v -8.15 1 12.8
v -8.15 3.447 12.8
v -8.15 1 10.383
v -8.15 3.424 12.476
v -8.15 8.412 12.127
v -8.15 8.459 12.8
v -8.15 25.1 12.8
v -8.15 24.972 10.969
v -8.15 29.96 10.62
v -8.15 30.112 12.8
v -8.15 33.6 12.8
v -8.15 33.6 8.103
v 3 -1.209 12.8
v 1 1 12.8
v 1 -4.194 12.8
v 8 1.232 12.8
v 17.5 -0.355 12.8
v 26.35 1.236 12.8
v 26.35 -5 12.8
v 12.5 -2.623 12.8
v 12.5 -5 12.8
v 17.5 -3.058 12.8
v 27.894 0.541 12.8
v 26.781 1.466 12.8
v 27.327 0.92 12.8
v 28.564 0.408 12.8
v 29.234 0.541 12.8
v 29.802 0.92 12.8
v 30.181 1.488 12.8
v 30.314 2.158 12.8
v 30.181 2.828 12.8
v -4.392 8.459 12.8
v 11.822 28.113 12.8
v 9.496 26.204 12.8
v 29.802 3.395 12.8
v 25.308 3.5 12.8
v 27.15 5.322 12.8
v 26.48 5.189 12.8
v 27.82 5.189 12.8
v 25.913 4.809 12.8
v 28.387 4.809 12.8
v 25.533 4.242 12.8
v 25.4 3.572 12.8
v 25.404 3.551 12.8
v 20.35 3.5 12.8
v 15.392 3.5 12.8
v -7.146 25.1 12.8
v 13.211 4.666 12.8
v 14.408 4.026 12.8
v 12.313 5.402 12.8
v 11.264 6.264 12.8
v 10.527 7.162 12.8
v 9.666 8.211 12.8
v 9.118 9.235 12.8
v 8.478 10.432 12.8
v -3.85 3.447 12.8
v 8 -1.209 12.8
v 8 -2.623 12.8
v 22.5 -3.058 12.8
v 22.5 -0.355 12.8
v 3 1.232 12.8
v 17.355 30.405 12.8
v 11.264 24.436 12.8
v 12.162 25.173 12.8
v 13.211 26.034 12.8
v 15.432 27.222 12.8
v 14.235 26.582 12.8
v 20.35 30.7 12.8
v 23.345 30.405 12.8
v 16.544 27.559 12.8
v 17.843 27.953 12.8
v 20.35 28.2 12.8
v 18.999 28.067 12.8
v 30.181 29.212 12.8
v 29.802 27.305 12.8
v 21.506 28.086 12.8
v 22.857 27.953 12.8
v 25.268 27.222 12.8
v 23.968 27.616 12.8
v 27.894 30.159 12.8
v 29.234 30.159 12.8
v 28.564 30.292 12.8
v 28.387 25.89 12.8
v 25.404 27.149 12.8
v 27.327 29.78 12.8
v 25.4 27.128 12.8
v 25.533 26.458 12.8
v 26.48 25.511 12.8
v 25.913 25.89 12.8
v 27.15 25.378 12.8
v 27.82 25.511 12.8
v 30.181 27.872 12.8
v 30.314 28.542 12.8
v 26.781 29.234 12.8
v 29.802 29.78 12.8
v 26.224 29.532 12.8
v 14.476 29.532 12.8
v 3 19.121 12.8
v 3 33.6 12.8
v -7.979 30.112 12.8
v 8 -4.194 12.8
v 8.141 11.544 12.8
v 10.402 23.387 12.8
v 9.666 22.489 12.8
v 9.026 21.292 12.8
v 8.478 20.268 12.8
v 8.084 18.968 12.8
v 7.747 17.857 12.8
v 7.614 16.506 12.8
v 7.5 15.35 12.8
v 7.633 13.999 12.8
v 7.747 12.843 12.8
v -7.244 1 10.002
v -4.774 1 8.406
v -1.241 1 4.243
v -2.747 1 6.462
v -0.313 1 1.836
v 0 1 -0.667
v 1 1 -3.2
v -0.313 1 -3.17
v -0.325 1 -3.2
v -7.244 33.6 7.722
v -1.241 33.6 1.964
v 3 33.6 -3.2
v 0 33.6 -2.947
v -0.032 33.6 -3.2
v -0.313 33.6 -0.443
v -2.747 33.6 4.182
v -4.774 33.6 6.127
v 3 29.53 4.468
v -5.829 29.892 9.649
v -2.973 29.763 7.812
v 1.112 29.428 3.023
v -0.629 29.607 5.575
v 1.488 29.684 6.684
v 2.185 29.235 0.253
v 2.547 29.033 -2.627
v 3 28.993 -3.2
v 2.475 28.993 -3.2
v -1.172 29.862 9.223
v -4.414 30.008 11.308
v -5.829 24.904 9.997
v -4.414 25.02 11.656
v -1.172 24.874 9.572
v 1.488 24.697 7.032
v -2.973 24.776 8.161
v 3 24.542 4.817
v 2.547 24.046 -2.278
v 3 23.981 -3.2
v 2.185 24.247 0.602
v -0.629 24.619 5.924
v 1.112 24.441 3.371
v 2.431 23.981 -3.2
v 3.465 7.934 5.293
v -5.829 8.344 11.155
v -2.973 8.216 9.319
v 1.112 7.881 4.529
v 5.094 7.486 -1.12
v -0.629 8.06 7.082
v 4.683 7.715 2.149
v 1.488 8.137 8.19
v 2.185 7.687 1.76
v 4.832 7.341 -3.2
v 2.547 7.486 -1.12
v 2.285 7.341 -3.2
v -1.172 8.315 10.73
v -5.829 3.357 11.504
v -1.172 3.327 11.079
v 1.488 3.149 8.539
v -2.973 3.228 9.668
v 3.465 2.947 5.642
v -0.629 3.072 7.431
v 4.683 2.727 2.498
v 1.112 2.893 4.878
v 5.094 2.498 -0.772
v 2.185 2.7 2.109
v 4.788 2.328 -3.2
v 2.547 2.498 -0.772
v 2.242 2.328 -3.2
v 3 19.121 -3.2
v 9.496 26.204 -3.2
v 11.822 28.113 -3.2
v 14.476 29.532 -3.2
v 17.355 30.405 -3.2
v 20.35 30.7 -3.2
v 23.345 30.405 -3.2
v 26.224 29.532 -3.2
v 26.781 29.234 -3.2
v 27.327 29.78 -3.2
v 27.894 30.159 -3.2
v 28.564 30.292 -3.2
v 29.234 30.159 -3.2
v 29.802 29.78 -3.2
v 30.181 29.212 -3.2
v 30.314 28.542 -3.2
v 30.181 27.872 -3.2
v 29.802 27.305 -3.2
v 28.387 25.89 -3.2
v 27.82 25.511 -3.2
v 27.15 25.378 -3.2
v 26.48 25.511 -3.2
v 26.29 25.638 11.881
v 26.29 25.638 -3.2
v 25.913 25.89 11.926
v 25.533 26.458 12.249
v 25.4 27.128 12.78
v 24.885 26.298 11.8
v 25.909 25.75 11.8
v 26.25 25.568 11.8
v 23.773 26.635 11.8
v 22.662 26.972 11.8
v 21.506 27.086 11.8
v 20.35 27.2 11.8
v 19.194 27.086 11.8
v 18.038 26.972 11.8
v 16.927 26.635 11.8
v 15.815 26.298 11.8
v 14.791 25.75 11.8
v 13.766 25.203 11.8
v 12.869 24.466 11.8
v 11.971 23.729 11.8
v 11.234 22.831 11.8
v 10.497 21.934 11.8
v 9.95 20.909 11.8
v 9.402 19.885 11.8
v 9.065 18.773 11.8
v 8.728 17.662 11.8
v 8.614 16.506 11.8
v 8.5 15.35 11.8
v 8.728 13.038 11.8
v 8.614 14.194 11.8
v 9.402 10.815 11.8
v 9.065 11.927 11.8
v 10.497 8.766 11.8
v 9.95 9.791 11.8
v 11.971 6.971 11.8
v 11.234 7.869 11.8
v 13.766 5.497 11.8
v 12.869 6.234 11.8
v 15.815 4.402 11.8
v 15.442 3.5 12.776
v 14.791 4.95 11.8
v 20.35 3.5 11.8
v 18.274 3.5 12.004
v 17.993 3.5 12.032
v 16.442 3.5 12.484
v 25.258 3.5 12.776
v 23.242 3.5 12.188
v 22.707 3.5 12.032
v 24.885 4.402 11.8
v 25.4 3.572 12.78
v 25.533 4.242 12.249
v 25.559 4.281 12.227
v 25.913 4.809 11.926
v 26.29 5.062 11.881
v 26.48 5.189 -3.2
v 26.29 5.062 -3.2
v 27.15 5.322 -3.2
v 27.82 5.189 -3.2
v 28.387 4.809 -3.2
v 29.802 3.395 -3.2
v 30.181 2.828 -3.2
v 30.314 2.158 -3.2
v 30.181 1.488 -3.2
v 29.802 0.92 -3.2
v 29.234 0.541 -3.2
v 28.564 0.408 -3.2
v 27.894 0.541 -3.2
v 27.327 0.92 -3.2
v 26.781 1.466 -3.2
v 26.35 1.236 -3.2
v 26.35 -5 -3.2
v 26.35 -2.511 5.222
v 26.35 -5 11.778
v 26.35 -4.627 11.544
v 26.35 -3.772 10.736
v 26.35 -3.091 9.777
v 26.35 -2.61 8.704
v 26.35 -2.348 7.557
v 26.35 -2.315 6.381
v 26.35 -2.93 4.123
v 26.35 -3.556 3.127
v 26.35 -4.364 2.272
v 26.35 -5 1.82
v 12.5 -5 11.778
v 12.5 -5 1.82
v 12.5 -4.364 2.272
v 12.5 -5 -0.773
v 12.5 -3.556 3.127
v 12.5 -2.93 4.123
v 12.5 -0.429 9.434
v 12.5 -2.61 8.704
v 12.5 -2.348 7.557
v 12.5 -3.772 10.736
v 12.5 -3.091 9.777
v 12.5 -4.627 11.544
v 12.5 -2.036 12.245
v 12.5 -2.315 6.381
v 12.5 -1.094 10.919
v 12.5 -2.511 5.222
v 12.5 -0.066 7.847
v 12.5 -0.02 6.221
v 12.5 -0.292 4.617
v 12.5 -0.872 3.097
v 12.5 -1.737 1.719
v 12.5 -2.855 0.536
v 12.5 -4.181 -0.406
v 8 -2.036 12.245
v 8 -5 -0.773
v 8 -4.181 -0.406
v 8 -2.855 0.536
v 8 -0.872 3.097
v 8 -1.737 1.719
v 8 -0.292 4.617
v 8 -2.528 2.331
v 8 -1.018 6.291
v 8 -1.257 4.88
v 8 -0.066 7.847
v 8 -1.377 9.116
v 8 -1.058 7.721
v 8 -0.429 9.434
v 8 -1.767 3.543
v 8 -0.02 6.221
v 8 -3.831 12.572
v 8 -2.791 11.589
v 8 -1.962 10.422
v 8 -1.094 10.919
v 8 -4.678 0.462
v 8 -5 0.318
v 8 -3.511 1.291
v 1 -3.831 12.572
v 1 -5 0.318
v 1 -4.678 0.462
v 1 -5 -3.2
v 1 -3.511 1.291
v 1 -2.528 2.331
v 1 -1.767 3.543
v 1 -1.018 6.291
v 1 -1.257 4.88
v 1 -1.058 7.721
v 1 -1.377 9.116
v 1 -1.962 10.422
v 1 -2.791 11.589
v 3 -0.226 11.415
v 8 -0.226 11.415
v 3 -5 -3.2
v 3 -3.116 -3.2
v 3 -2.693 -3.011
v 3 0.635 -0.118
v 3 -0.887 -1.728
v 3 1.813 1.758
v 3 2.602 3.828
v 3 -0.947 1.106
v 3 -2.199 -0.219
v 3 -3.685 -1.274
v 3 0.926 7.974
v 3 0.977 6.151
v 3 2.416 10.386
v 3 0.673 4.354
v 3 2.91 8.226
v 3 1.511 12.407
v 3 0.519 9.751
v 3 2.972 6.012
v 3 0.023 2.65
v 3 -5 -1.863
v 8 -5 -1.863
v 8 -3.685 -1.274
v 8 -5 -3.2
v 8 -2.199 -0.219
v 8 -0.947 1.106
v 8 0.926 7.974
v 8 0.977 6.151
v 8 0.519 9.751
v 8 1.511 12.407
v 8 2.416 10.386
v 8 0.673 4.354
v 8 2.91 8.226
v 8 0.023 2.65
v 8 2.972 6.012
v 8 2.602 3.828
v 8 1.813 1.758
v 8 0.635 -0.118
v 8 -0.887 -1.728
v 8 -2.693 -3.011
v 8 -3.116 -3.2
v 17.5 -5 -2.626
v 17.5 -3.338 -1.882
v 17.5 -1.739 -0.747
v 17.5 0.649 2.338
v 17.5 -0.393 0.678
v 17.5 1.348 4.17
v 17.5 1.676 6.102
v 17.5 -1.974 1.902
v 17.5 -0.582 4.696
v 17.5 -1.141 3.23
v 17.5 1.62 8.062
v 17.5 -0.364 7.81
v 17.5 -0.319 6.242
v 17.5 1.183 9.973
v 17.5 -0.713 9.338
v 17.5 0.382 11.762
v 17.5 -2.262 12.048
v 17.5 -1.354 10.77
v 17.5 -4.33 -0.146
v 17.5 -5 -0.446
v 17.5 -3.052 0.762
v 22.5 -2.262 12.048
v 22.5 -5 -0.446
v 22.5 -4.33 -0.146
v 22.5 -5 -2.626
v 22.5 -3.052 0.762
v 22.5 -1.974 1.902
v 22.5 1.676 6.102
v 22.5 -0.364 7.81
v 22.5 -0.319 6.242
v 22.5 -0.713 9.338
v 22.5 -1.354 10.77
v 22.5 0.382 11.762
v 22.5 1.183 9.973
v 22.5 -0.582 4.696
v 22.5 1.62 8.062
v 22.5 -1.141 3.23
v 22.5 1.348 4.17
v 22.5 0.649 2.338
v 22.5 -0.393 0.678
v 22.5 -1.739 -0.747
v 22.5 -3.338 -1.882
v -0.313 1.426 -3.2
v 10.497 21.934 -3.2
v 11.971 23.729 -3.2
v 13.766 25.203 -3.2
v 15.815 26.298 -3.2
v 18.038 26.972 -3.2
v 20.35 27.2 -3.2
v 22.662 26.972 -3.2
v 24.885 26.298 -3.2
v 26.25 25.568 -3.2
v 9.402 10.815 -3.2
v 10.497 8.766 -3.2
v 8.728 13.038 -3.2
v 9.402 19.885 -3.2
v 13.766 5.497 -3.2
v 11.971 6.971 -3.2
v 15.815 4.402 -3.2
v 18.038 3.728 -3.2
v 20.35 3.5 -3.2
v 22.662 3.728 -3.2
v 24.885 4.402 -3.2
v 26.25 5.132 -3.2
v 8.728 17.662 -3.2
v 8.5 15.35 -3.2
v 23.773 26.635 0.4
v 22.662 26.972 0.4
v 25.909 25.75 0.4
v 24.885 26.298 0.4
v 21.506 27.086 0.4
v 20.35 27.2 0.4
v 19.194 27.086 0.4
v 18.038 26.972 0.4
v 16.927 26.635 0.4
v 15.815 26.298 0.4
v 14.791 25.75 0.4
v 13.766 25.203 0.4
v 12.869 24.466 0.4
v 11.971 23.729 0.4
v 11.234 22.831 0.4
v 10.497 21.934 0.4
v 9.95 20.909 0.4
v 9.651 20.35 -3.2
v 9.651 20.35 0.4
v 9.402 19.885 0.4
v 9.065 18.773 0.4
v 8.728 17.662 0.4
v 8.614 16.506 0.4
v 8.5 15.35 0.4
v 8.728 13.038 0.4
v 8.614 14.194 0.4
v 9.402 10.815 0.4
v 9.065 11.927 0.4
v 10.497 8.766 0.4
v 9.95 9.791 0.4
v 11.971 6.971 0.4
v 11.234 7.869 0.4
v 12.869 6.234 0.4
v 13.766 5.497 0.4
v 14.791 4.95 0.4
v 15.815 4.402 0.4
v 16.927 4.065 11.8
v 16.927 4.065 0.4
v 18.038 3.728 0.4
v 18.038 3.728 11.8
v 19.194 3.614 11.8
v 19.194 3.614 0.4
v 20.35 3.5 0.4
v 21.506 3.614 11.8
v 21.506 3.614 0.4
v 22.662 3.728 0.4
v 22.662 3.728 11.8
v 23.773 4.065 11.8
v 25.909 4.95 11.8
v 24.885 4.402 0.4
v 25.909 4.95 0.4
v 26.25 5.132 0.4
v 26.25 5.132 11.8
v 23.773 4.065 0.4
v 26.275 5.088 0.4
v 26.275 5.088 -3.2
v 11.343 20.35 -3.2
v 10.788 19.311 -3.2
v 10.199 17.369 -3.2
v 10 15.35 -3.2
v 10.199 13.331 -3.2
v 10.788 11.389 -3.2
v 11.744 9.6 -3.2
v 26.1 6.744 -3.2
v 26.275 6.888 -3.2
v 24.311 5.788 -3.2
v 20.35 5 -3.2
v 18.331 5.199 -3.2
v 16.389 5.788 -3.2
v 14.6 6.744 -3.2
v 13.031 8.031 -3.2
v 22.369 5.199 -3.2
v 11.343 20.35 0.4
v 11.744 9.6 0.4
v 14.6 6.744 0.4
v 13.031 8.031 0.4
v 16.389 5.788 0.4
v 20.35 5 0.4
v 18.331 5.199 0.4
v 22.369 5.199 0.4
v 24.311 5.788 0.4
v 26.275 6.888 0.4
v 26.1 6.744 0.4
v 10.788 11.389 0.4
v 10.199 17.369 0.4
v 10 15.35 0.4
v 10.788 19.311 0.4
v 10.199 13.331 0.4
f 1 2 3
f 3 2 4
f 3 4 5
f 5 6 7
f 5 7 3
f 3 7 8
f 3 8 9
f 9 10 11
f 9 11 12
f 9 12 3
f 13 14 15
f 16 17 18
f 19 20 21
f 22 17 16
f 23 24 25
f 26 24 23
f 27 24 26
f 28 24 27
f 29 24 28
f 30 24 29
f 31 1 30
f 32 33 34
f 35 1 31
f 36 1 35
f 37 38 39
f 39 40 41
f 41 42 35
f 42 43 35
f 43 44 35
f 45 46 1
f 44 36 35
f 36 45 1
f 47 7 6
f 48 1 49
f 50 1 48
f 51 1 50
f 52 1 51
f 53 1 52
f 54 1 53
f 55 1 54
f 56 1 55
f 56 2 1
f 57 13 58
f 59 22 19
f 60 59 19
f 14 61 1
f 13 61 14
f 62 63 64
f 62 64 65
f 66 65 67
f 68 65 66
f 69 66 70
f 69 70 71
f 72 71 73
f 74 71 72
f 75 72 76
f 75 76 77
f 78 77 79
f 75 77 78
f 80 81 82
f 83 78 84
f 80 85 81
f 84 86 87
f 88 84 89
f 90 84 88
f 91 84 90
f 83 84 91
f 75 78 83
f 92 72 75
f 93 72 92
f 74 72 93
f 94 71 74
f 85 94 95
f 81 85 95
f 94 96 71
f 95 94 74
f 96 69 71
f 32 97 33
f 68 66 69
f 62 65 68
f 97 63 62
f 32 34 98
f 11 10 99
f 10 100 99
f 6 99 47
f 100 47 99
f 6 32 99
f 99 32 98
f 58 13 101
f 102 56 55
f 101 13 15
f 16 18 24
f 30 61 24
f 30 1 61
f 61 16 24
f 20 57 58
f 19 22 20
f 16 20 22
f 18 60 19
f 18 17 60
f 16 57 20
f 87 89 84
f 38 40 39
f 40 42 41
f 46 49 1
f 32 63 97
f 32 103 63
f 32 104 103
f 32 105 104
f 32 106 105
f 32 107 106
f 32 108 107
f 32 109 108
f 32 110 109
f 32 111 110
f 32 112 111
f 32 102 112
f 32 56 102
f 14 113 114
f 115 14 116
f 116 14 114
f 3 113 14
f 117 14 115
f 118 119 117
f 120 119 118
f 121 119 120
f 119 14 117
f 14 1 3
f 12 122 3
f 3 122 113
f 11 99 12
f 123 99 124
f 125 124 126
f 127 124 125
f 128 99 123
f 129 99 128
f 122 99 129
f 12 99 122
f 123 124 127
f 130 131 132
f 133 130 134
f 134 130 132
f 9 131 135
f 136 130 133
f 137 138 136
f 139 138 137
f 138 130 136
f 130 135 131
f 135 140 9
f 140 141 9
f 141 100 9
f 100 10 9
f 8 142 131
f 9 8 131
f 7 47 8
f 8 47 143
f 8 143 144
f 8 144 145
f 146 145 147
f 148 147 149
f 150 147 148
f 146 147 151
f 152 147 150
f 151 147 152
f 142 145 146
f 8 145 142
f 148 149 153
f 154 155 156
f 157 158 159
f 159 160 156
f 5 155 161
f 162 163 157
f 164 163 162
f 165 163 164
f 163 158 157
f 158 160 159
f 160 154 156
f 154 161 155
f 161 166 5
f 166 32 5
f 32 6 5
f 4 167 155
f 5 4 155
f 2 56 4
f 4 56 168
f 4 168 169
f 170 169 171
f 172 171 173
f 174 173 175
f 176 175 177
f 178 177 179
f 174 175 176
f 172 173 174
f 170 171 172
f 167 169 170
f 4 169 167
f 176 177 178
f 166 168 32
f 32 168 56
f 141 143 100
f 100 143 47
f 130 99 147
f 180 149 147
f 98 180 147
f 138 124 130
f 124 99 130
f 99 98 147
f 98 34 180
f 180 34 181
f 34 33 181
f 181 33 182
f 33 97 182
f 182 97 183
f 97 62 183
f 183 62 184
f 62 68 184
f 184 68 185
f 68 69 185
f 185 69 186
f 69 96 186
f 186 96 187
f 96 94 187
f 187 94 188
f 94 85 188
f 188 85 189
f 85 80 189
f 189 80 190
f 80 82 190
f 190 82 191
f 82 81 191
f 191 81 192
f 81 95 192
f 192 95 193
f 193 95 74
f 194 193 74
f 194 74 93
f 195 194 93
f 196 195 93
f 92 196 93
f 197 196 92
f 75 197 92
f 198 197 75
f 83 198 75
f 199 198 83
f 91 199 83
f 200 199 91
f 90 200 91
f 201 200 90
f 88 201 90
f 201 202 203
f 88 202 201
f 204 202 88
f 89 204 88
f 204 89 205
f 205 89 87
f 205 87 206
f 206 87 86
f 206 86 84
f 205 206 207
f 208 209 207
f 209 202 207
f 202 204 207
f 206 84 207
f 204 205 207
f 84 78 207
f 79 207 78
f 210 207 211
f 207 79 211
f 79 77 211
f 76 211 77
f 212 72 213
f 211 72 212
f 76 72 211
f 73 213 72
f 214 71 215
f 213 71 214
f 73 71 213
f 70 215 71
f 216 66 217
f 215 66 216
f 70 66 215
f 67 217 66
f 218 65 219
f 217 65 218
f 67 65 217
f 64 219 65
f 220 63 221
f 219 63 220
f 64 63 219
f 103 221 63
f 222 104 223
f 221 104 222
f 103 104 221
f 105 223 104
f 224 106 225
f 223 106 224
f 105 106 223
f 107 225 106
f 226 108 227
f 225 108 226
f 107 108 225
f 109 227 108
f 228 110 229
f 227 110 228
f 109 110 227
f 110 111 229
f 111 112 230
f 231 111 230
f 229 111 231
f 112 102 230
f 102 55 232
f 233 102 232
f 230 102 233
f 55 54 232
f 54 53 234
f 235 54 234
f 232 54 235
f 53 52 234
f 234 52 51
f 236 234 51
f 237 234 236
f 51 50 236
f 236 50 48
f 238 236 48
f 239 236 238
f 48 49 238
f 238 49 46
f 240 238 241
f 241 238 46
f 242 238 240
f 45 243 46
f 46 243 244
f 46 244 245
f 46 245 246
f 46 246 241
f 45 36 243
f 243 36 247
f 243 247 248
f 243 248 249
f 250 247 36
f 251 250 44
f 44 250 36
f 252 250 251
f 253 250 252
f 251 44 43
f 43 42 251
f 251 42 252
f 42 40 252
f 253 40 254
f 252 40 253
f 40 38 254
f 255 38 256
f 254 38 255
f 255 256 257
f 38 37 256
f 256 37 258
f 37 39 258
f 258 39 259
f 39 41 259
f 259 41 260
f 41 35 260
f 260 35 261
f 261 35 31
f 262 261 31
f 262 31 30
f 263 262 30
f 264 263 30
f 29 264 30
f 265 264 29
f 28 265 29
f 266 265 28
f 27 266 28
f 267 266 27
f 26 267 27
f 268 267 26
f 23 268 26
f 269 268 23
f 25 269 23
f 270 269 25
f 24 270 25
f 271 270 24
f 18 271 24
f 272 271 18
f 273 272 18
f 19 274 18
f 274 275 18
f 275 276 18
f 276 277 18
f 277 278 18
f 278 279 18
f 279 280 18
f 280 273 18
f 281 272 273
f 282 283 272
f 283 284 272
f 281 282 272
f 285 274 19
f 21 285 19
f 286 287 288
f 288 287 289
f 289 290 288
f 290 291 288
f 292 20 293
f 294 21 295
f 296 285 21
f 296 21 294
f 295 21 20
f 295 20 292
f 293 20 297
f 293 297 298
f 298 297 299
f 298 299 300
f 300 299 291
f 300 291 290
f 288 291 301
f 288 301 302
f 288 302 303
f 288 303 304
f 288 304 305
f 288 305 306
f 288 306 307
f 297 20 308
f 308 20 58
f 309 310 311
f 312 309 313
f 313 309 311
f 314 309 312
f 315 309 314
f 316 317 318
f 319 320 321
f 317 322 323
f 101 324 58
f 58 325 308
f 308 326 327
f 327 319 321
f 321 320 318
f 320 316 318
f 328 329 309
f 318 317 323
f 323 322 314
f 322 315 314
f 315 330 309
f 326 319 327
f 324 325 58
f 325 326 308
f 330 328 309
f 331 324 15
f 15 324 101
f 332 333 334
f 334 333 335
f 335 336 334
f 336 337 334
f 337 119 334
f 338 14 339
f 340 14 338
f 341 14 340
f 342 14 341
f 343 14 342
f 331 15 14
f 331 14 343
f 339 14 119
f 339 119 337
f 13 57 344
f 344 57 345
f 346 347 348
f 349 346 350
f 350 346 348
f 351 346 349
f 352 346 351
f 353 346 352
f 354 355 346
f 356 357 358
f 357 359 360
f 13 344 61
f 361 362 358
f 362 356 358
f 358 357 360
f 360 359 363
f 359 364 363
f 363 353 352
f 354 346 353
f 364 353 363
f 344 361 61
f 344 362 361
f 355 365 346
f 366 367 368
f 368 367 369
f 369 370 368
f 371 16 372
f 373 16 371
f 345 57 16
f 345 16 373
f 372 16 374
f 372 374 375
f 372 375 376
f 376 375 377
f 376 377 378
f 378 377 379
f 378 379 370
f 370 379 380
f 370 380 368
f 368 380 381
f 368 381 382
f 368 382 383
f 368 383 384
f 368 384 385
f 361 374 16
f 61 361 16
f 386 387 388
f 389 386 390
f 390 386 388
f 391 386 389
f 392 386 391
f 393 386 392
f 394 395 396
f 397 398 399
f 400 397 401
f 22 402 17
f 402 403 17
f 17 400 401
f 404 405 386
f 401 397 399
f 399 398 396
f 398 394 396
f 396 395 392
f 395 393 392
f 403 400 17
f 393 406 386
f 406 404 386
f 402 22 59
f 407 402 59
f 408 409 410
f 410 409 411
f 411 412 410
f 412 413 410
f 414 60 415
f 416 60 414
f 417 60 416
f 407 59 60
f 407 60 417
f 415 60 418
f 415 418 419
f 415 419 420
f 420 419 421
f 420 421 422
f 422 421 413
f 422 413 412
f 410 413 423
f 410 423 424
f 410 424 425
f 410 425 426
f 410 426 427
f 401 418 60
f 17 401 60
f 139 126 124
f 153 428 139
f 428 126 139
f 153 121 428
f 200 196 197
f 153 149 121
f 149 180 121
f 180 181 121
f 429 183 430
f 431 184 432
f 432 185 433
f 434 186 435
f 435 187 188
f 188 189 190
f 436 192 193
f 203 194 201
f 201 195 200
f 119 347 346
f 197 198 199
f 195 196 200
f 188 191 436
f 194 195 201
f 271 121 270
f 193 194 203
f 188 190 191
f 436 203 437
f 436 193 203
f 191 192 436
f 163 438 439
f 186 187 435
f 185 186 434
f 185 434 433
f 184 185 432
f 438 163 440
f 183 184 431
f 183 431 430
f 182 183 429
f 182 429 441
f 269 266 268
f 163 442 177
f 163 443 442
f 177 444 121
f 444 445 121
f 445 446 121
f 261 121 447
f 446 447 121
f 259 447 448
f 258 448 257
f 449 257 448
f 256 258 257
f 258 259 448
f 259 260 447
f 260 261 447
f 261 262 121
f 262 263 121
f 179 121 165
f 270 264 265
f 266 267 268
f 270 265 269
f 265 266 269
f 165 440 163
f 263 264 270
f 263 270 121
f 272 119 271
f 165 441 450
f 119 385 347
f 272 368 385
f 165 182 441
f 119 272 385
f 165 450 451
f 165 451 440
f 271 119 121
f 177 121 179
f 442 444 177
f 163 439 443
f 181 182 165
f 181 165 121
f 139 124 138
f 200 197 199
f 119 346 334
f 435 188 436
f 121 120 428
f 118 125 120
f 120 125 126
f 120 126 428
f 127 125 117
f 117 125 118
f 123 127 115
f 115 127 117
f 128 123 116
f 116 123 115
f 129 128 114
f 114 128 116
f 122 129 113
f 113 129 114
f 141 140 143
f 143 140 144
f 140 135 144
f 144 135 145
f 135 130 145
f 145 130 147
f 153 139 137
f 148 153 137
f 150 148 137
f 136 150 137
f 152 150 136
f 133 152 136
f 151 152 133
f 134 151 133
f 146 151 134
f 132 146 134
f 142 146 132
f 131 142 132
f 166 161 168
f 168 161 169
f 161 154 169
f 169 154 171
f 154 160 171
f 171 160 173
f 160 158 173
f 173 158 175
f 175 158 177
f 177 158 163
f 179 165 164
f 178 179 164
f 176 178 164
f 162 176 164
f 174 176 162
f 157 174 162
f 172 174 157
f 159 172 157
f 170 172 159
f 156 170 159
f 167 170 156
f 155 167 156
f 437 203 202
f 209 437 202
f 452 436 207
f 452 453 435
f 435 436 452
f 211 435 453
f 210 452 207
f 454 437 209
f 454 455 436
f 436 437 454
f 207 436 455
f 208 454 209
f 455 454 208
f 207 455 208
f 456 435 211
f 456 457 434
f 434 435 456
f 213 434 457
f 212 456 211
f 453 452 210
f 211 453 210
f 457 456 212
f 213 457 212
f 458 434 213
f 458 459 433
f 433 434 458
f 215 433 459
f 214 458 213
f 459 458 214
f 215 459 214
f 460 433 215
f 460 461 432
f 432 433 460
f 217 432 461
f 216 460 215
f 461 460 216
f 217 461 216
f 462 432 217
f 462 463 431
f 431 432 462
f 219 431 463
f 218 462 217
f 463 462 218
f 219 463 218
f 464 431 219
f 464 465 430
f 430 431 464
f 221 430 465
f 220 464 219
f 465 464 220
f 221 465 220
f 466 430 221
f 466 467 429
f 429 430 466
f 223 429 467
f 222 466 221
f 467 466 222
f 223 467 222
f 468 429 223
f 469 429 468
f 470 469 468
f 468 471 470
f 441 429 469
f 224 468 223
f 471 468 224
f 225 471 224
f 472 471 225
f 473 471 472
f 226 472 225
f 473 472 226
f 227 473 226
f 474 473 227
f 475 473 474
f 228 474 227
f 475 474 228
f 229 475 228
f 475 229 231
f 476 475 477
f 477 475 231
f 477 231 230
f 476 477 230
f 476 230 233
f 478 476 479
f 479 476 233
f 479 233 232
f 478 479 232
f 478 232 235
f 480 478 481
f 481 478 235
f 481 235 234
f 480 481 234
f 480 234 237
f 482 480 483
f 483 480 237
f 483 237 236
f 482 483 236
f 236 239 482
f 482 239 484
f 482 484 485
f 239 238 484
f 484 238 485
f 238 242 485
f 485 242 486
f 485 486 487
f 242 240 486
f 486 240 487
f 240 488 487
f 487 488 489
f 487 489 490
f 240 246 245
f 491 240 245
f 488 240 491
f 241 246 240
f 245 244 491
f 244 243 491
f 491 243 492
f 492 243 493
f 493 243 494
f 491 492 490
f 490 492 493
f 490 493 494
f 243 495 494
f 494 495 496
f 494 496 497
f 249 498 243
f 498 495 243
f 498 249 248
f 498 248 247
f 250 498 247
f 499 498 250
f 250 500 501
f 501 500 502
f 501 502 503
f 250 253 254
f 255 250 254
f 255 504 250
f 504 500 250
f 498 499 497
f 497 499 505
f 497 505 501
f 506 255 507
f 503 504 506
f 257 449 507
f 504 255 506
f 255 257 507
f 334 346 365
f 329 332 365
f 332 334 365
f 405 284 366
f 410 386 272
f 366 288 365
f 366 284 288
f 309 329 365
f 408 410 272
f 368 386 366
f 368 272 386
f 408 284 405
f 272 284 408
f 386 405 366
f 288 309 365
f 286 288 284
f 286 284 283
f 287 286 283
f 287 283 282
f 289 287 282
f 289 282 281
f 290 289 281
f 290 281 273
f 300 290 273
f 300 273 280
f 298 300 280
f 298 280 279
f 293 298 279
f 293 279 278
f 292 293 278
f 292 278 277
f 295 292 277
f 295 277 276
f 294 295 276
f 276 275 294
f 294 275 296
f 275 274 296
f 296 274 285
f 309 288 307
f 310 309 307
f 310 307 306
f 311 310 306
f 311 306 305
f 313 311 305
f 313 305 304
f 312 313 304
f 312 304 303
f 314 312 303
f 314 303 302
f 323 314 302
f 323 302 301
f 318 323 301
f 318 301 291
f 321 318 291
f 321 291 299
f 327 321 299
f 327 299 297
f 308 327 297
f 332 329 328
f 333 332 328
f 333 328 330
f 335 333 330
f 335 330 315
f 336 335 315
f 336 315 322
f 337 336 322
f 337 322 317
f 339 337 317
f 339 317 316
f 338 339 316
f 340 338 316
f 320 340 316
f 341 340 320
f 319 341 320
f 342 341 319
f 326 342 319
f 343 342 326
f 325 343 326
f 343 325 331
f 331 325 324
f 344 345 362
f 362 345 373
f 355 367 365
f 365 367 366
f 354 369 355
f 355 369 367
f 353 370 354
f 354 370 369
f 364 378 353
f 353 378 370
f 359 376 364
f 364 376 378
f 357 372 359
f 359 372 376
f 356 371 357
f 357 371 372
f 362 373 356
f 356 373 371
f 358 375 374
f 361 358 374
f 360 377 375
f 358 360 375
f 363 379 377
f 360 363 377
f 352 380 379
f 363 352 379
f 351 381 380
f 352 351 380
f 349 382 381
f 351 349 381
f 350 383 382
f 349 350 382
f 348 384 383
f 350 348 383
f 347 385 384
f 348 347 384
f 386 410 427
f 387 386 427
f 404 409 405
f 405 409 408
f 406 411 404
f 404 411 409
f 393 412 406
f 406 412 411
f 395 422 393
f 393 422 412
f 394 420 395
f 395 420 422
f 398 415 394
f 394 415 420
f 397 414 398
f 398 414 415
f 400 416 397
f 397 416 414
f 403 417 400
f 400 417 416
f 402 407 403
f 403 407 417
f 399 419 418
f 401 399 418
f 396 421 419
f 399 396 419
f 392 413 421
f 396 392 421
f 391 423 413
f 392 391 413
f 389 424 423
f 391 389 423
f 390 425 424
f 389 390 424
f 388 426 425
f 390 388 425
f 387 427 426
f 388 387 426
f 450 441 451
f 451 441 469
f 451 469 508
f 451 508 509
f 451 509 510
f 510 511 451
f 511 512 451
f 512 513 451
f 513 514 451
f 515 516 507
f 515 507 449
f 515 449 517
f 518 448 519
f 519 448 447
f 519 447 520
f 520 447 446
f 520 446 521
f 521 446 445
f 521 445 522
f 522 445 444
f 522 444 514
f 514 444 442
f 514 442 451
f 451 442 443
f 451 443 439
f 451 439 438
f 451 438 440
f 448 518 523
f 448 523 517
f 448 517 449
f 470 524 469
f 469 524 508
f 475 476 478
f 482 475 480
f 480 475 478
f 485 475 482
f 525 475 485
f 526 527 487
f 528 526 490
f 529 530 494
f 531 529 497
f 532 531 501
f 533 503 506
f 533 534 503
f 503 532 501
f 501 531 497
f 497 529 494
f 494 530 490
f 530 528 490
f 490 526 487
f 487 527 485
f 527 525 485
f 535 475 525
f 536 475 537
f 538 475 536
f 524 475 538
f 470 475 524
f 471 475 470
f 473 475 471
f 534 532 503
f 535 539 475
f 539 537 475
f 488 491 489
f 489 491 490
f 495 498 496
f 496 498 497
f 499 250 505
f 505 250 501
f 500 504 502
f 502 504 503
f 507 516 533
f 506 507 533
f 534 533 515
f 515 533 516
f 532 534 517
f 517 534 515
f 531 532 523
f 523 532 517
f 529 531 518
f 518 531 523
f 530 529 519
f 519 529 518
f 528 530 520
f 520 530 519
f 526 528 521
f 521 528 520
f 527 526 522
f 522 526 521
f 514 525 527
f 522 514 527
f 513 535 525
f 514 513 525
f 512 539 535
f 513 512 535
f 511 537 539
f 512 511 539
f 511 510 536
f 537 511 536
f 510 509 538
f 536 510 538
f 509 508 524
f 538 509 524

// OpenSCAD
// file: ../standard_optomechanics/cylinder_clamp.scad
use <../utilities.scad>;
d=0.05;

//for 1 inch/25mm post clamp, an inner radius of 12.8 is good.
	
module cylinder_clamp(
	inner_r=12.8, //radius of the cylinder being clamped (ish!)
	clamp_h=11, //thicknedess of the clamp along the cylinder axis
	clamp_t=4, //thickness of the clamp radially
	flat_t=8, //how thick the bottom of the clamp is (often need to allow for the mounting bolt head here)
	flat_width=15, //width of the flat base
	mounting_bolt=4, //nominal size of mounting bolt (default is 4 for M4, 0 to disable)
	nut_trap=false,
	bevel_top=0.5, //size of 45 degree bevel on top surface
	bevel_bottom=0.8 //size of 45 degree bevel on bottom of hole
	){
	assign(
		post_r = inner_r, //poor initial choice of name!
		bolt_flat_w=10, //width of the region where the bolt is
		gap_w=3 //size of the gap that is squeezed by the bolt
	)
	difference(){
		hull(){
			cylinder(h=clamp_h,r=post_r+clamp_t,center=true,$fn=48);
			translate([0,-post_r-flat_t/2,0]) cube([flat_width,flat_t,clamp_h],center=true);
			translate([0,post_r+bolt_flat_w/2,0]) cube([12,bolt_flat_w,clamp_h],center=true);
		}
	
		cylinder(h=9999,r=post_r,center=true,$fn=48); //cylinder being clamped
		//bevels, top and bottom
		translate([0,0,-clamp_h/2]) cylinder(r1=post_r+3*bevel_bottom,r2=post_r-bevel_bottom,h=4*bevel_bottom,center=true);
		translate([0,0,clamp_h/2]) cylinder(r2=post_r+3*bevel_top,r1=post_r-bevel_top,h=4*bevel_top,center=true);
		//gap (squeezed by bolt)
		translate([0,999,0]) cube([gap_w,999*2,999],center=true); //gap
	
		//clamping bolt
		translate([gap_w/2+2,post_r+bolt_flat_w/2,0]) rotate([0,0,-90]) nut_y(4,h=999,shaft=true);
		translate([-gap_w/2-2,post_r+bolt_flat_w/2,0]) rotate([0,0,90]) cylinder_with_45deg_top(r=4,h=999,$fn=16); //counterbore for nut head
	
		if(mounting_bolt > 0){
			//mounting bolt
			translate([0,-post_r-4.5,0]) rotate([-90,0,0]){
				intersection(){
					rotate([90,0,0])
						if(nut_trap){
							nut_y(mounting_bolt,fudge=1.15,shaft=true,h=999);
						}else{
							screw_y(mounting_bolt,fudge=1.07,shaft=true,h=999);
						}
					cube([inner_r*2,inner_r*2,clamp_h*2],center=true);
				}
			}
		}
		//in the case of thick clamps with thin flats, this keeps the bottom flat
		translate([0,-inner_r-flat_t-999,0]) cube([9999,999*2,9999],center=true);
	}
}

module cylinder_clamp_v(
	inner_r=12.8, //radius of the cylinder being clamped (ish!)
	clamp_h=10, //width of the clamp along the cylinder (y) axis
	clamp_t=4, //thickness of the clamp radially
	flat_t=8, //how thick the bottom of the clamp is (often need to allow for the mounting bolt head here)
	flat_width=15, //width of the flat base
	mounting_bolt=4, //nominal size of mounting bolt (default is 4 for M4, 0 to disable)
	bevel=0.5 //put a 45 degree bevel on the edges of the hole
	){
	assign(
		post_r = inner_r, //poor initial choice of name!
		bolt_flat_w=11, //width of the region where the bolt is
		gap_w=2*inner_r*sin(45/2),//sin(acos(1-(9/2-4/2*1.22)/inner_r))*inner_r //size of the gap that is squeezed by the bolt
		bolt_z = inner_r+4/2*1.22+d //position of bolt (so bolt just clears the cylinder we're clamping
	)assign( //the second assign statement allows us to use gap_w
		bolt_span=gap_w+4+d//max(2*inner_r*sin(acos(1-(9/2-4/2*1.22)/inner_r)), gap_w+4)
	)
	difference(){
		hull(){
			rotate([90,0,0]) cylinder(h=clamp_h,r=inner_r+clamp_t,center=true,$fn=48);
			translate([0,0,-inner_r-flat_t/2]) cube([flat_width,clamp_h,flat_t],center=true);
			translate([0,0,bolt_z]) cube([gap_w+9,clamp_h,bolt_flat_w],center=true);
		}
	
		cylinder_with_45deg_top(h=9999,r=post_r,center=true,$fn=48); //cylinder being clamped
		reflect([0,1,0]) translate([0,clamp_h/2,0]) rotate([90,0,0]) cylinder(r1=post_r+3*bevel,r2=post_r-bevel,h=4*bevel,center=true); //bevel
		translate([0,0,999]) cube([gap_w,999,999*2],center=true); //gap
	
		//clamping bolt
		translate([bolt_span/2,0,bolt_z]) rotate([0,0,-90]) nut_y(4,h=999,shaft=true);
		translate([-bolt_span/2,0,bolt_z]) rotate([0,0,90]) cylinder_with_45deg_top(r=4,h=999,$fn=16); //counterbore for nut head
	
		if(mounting_bolt > 0){
			//mounting bolt
			translate([0,0,-post_r-4.5]){
				cylinder(r=mounting_bolt*1.1,h=post_r,$fn=16);
				cylinder(r=mounting_bolt/2*1.22,h=flat_t*2,center=true,$fn=16);
			}
		}
		translate([0,0,-inner_r-flat_t-999]) cube([9999,9999,999*2],center=true);
	}
}

translate([0,30,0]) cylinder_clamp_v(30.5/2, 10, flat_width=24, mounting_bolt=4, flat_t=8);

cylinder_clamp(30.5/2, flat_width=24, mounting_bolt=4, flat_t=8,nut_trap=true);
// file: cylinder_clip.scad
use <../utilities.scad>;

module cylinder_clip(r=1,t=3,opening_angle=120,wing_length=2,wing_angle=45,flat_w=10,flat_t=3,h=10,$fn=$fn){
	union(){
		difference(){
			hull(){
				cylinder(r=r+t,$fn=$fn,h=h);
				translate([-flat_w/2,-r-flat_t,0]) cube([flat_w,0.1,h]);
			}
			cylinder(r=r,$fn=$fn,h=99999,center=true);
			cylinder(r1=r+2,r2=r,$fn=$fn,h=2,center=true);
			scale([tan(opening_angle/2),1,1]) rotate([0,0,45]) translate([0,0,-1]) cube([1,1,1]*9999);
		}
		reflect([1,0,0]) translate([sin(opening_angle/2),cos(opening_angle/2),0]*(r+t/2)) hull() repeat([sin(wing_angle),cos(wing_angle),0]*wing_length,2)
			cylinder(r=t/2,h=h,$fn=16);
			
	}
}

//cylinder_clip(r=3,t=2,flat_w=6);
union(){
	cylinder_clip(r=21,t=4.5,flat_t=10,opening_angle=100,$fn=64);
	translate([-5,-22-5-20,0]) cube([10,20,10]);
}
// main file
use <../utilities.scad>;
use <./cylinder_clip.scad>;
use <../standard_optomechanics/cylinder_clamp.scad>;

socket_radius = 24.3/2-0.3;
clip_t = 3.5;
vbrake_mount_r2 = 11.6/2+0.2;
vbrake_mount_r1 = 14/2+0.3;
corner_clearance = 1;
vbrake_mount_l1 = 8;
vbrake_mount_l2 = 20;
vbrake_mount_lip_l = 4.5;
clip_h = 16;
fork = [32.6,25.6];
base_z = -fork[1]/2; //in original this was -fork[1]/2+1
mount_h = clip_h;
reinforcement = [13,13];
vbrake_pos = [0,-vbrake_mount_r1-1,vbrake_mount_r2-fork[1]/2];
$fn=32;
d=0.05;

module annulus(inner_r,thickness,h){
	difference(){
		cylinder(r=inner_r+thickness,h=h);
		cylinder(r=inner_r,h=99999,center=true);
	}
}
module cable_tie(inner_r){
	annulus(inner_r+2,2,5);
}

mirror([0,0,1])
//mirror([1,0,0])
difference(){
	union(){
		translate([socket_radius+clip_t+5,socket_radius+clip_t,base_z]) rotate(-90) cylinder_clip(r=socket_radius, t=clip_t,flat_w=1,flat_t=clip_t+5,h=clip_h);
		translate([corner_clearance,-5,base_z]) cube([socket_radius+clip_t+10,5+clip_t,mount_h]); //attachment to V brake mount
		translate([-fork[0]/4,corner_clearance,base_z]) cube([fork[0]/4+3,fork[0],mount_h]); //attachment to fork
		translate([corner_clearance,corner_clearance,base_z]) hull(){
			cube([reinforcement[0],d,mount_h]);
			cube([d,reinforcement[1],mount_h]);
		}
		translate([clip_t+5,clip_t,base_z+clip_h-3.6]) cube([socket_radius*1.5,socket_radius+5,3.6]);
	}

	// Pedal mount
	translate([socket_radius+clip_t+5,socket_radius+clip_t,0]) cylinder(r=socket_radius-1.5,h=999,center=true);
	translate([socket_radius+clip_t+5,socket_radius+clip_t,base_z]) cylinder(r=socket_radius,h=clip_h-3.6);
//	translate([socket_radius+clip_t+5,socket_radius+clip_t,base_z+clip_h-3.6]) cylinder(r1=socket_radius,r2=socket_radius-1.5,h=0.75);

translate(vbrake_pos) rotate([4,0,0]) translate(-vbrake_pos){
		//////////// Fork
		translate([-fork[0]/2,0,0]) rotate([-90,0,0]) scale([fork[0]/fork[1],1,1]){
			cylinder(r=fork[1]/2,h=999,center=true);
			translate([0,0,3]) cable_tie(fork[1]/2);
			translate([0,0,fork[0]-8]) cable_tie(fork[1]/2);
		}
	
		//////////// V brake mount
		translate(vbrake_pos) rotate([0,90,0]){
			cylinder(r=vbrake_mount_r1,h=vbrake_mount_l1+d);
			translate([0,0,vbrake_mount_l1]) cylinder(r=vbrake_mount_r1+1,h=vbrake_mount_lip_l);
			translate([0,0,vbrake_mount_l1+vbrake_mount_lip_l]) cylinder(r=vbrake_mount_r2,h=vbrake_mount_l2);
			// Cable tie points
			translate([0,0,vbrake_mount_l1-5]) cable_tie(vbrake_mount_r1);
			translate([0,0,vbrake_mount_l1+vbrake_mount_lip_l+5]) cable_tie(vbrake_mount_r2);
		}
	}
}
